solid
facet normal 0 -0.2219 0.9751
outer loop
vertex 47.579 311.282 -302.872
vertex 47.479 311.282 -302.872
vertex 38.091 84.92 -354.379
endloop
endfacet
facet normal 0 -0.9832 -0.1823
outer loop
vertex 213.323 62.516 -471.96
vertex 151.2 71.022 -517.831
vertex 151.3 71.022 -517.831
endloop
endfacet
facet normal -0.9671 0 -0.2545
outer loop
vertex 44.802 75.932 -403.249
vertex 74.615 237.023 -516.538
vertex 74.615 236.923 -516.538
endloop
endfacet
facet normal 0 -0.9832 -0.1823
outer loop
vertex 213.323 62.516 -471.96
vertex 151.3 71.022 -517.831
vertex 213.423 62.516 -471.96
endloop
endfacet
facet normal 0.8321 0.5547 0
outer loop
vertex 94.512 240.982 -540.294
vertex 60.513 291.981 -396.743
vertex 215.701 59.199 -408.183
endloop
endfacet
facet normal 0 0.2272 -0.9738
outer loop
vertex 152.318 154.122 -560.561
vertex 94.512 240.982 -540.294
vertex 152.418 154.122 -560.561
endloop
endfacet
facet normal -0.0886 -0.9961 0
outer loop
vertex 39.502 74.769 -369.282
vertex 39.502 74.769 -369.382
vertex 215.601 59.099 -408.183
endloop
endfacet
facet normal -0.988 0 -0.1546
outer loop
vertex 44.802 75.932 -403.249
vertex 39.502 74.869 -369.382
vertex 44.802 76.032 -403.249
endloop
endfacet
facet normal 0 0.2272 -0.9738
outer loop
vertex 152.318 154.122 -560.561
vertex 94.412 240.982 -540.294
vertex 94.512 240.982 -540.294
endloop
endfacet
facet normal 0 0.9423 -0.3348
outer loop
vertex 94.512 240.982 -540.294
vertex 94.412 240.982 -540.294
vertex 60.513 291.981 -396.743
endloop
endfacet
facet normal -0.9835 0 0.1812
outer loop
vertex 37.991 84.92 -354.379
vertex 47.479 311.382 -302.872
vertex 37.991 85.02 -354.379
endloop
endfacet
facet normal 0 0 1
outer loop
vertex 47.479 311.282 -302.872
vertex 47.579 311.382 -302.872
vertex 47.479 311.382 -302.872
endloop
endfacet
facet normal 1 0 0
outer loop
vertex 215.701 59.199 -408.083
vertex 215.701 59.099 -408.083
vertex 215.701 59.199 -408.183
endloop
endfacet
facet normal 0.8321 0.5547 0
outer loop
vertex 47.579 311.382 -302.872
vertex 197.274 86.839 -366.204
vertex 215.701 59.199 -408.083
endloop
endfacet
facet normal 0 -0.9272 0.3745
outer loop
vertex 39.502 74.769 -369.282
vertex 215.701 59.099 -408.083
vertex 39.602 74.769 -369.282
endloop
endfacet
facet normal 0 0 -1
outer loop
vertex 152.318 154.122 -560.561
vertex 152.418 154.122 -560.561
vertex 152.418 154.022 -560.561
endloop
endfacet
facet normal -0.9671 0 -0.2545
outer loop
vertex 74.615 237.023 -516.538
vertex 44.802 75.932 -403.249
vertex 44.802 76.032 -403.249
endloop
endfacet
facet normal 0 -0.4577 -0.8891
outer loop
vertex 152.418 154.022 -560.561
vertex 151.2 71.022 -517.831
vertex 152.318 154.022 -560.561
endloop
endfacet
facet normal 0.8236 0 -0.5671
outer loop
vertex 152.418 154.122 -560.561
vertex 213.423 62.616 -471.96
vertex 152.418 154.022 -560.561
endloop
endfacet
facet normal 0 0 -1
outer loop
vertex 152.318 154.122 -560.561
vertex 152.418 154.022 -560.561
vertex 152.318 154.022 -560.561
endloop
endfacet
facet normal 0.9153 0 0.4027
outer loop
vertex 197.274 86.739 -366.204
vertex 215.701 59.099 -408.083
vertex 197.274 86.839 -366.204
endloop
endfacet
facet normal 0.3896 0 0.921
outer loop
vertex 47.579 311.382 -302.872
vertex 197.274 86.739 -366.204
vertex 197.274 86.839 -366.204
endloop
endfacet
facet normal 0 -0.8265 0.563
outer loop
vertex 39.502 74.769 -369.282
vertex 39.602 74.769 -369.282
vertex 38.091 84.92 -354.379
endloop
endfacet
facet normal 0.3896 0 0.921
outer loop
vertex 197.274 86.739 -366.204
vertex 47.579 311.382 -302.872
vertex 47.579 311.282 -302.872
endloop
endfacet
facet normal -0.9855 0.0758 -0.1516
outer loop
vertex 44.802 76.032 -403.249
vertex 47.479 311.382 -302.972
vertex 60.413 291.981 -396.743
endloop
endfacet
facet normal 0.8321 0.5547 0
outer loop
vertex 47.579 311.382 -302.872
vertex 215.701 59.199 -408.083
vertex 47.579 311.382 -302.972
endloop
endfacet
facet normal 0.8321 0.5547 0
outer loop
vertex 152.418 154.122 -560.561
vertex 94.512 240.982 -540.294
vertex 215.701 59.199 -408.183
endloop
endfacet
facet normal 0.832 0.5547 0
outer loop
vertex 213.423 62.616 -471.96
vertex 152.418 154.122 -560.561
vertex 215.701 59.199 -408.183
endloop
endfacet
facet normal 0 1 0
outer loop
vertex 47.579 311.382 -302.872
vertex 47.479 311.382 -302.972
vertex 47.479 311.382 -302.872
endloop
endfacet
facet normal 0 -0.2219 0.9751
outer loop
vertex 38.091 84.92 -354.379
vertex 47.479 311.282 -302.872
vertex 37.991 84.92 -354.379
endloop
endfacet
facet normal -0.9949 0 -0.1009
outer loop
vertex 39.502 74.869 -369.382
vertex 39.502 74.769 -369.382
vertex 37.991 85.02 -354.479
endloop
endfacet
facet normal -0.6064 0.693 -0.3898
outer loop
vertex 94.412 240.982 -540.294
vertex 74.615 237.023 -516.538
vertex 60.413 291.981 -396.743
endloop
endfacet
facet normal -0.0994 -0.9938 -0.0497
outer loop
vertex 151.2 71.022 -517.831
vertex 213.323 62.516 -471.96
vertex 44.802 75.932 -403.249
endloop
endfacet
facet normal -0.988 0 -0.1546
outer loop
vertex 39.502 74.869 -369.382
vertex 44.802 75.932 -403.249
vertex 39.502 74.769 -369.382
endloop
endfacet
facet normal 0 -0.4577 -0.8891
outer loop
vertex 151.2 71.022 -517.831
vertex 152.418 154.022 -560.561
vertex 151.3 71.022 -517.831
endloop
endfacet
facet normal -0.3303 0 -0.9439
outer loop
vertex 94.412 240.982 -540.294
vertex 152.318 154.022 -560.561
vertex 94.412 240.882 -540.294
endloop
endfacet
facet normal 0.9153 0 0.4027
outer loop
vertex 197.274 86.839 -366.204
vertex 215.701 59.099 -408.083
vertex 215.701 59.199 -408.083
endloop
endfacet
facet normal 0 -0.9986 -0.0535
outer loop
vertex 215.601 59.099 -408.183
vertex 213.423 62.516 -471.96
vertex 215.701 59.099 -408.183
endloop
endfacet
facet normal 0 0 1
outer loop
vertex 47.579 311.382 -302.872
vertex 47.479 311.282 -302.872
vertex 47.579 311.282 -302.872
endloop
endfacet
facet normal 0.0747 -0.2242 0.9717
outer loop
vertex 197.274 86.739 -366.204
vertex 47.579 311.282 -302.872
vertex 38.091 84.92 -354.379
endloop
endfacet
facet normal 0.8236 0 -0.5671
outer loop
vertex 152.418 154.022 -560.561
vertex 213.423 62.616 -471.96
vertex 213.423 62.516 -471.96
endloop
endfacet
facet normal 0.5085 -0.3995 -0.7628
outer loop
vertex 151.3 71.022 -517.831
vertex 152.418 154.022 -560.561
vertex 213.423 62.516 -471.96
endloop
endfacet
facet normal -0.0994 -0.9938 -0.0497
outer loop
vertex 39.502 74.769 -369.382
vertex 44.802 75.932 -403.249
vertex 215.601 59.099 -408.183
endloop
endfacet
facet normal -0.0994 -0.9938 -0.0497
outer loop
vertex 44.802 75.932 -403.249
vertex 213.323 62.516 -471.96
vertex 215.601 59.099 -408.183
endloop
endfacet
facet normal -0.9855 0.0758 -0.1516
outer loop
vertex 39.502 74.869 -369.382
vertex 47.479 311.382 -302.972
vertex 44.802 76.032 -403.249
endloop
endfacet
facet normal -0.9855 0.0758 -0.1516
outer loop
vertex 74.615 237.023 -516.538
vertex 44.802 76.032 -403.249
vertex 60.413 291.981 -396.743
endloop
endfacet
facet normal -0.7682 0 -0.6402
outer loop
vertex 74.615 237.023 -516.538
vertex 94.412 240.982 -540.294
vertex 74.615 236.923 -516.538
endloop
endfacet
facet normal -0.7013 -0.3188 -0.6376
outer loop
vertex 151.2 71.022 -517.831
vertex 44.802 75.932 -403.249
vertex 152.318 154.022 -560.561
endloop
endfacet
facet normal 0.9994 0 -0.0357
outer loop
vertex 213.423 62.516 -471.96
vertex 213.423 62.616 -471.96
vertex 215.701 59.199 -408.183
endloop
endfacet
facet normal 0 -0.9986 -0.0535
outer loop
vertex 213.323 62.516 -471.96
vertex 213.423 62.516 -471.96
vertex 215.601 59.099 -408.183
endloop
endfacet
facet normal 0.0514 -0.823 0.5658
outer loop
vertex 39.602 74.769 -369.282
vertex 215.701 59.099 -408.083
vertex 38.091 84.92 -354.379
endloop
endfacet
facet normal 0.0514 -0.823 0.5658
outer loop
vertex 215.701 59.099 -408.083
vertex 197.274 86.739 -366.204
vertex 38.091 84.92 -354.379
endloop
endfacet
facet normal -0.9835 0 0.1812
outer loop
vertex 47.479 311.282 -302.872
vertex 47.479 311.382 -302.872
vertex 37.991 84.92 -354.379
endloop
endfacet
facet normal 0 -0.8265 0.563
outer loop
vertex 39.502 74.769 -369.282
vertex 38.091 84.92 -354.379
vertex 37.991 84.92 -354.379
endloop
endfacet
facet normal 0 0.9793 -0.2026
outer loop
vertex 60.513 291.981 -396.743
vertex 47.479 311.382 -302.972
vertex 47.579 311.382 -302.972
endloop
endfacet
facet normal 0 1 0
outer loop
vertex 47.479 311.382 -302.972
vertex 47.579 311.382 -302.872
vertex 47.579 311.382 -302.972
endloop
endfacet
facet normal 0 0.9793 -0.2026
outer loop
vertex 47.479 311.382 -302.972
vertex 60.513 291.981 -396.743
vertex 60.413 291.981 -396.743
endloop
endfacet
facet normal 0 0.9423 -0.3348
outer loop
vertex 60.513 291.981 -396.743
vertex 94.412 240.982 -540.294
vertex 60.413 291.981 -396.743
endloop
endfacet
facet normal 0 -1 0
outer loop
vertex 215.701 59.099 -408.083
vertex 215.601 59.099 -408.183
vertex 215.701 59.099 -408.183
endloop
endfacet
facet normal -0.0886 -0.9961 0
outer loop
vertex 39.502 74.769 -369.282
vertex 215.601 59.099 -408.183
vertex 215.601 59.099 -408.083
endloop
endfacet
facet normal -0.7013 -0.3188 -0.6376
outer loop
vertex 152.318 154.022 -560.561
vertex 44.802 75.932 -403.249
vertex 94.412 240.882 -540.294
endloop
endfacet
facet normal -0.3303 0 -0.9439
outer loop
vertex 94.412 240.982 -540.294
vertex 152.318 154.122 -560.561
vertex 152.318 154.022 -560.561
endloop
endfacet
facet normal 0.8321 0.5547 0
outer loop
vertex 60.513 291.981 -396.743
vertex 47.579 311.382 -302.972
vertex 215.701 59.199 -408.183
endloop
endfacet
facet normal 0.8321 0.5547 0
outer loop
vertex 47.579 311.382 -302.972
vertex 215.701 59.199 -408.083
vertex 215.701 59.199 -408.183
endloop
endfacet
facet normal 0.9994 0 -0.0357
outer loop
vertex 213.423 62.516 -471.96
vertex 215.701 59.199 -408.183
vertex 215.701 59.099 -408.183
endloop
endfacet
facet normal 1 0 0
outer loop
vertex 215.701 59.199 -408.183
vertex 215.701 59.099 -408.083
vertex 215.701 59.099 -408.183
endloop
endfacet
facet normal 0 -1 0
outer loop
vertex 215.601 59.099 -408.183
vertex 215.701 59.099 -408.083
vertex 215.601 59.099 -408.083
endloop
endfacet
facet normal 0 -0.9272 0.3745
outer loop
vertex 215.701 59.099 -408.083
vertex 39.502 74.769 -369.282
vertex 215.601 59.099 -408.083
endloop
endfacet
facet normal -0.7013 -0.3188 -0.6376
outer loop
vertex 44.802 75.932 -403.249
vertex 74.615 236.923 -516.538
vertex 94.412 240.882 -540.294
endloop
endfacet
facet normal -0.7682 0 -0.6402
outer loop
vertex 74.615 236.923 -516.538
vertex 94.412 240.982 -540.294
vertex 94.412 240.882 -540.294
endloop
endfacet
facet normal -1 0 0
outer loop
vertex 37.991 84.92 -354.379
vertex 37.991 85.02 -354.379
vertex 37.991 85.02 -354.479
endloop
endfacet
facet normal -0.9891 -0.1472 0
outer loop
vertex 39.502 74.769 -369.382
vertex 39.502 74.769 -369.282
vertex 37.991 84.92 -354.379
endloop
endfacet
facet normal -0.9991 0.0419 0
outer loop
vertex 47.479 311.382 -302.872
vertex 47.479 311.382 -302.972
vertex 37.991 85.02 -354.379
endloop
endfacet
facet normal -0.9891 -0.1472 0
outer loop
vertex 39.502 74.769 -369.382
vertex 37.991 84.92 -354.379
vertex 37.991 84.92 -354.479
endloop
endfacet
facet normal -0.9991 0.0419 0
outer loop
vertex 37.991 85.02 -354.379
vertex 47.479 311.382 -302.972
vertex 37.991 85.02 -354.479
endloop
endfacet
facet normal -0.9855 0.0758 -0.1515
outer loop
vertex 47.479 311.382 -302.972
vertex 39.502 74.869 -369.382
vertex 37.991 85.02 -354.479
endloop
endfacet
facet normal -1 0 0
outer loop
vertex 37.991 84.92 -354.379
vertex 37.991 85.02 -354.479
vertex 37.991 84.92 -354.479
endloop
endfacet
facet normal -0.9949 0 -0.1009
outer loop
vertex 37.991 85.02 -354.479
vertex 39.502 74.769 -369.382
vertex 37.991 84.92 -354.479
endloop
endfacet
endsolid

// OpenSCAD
hull(){ translate([94.4117647059,240.882352941,-540.294117647])cube(0.1,0.1,0.1);
translate([197.173913043,86.7391304348,-366.304347826])cube(0.1,0.1,0.1);
translate([152.318361955,154.022457067,-560.561426684])cube(0.1,0.1,0.1);
translate([151.199751347,71.0215499378,-517.83050145])cube(0.1,0.1,0.1);
translate([213.322869955,62.5156950673,-471.959641256])cube(0.1,0.1,0.1);
translate([215.600600601,59.0990990991,-408.183183183])cube(0.1,0.1,0.1);
translate([44.802259887,75.9322033898,-403.248587571])cube(0.1,0.1,0.1);
translate([74.6153846154,236.923076923,-516.538461538])cube(0.1,0.1,0.1);
translate([39.5025125628,74.7688442211,-369.381909548])cube(0.1,0.1,0.1);
translate([37.9906542056,84.9198931909,-354.479305741])cube(0.1,0.1,0.1);
translate([60.4128440367,291.880733945,-396.743119266])cube(0.1,0.1,0.1);
translate([47.4788732394,311.281690141,-302.971830986])cube(0.1,0.1,0.1); }
